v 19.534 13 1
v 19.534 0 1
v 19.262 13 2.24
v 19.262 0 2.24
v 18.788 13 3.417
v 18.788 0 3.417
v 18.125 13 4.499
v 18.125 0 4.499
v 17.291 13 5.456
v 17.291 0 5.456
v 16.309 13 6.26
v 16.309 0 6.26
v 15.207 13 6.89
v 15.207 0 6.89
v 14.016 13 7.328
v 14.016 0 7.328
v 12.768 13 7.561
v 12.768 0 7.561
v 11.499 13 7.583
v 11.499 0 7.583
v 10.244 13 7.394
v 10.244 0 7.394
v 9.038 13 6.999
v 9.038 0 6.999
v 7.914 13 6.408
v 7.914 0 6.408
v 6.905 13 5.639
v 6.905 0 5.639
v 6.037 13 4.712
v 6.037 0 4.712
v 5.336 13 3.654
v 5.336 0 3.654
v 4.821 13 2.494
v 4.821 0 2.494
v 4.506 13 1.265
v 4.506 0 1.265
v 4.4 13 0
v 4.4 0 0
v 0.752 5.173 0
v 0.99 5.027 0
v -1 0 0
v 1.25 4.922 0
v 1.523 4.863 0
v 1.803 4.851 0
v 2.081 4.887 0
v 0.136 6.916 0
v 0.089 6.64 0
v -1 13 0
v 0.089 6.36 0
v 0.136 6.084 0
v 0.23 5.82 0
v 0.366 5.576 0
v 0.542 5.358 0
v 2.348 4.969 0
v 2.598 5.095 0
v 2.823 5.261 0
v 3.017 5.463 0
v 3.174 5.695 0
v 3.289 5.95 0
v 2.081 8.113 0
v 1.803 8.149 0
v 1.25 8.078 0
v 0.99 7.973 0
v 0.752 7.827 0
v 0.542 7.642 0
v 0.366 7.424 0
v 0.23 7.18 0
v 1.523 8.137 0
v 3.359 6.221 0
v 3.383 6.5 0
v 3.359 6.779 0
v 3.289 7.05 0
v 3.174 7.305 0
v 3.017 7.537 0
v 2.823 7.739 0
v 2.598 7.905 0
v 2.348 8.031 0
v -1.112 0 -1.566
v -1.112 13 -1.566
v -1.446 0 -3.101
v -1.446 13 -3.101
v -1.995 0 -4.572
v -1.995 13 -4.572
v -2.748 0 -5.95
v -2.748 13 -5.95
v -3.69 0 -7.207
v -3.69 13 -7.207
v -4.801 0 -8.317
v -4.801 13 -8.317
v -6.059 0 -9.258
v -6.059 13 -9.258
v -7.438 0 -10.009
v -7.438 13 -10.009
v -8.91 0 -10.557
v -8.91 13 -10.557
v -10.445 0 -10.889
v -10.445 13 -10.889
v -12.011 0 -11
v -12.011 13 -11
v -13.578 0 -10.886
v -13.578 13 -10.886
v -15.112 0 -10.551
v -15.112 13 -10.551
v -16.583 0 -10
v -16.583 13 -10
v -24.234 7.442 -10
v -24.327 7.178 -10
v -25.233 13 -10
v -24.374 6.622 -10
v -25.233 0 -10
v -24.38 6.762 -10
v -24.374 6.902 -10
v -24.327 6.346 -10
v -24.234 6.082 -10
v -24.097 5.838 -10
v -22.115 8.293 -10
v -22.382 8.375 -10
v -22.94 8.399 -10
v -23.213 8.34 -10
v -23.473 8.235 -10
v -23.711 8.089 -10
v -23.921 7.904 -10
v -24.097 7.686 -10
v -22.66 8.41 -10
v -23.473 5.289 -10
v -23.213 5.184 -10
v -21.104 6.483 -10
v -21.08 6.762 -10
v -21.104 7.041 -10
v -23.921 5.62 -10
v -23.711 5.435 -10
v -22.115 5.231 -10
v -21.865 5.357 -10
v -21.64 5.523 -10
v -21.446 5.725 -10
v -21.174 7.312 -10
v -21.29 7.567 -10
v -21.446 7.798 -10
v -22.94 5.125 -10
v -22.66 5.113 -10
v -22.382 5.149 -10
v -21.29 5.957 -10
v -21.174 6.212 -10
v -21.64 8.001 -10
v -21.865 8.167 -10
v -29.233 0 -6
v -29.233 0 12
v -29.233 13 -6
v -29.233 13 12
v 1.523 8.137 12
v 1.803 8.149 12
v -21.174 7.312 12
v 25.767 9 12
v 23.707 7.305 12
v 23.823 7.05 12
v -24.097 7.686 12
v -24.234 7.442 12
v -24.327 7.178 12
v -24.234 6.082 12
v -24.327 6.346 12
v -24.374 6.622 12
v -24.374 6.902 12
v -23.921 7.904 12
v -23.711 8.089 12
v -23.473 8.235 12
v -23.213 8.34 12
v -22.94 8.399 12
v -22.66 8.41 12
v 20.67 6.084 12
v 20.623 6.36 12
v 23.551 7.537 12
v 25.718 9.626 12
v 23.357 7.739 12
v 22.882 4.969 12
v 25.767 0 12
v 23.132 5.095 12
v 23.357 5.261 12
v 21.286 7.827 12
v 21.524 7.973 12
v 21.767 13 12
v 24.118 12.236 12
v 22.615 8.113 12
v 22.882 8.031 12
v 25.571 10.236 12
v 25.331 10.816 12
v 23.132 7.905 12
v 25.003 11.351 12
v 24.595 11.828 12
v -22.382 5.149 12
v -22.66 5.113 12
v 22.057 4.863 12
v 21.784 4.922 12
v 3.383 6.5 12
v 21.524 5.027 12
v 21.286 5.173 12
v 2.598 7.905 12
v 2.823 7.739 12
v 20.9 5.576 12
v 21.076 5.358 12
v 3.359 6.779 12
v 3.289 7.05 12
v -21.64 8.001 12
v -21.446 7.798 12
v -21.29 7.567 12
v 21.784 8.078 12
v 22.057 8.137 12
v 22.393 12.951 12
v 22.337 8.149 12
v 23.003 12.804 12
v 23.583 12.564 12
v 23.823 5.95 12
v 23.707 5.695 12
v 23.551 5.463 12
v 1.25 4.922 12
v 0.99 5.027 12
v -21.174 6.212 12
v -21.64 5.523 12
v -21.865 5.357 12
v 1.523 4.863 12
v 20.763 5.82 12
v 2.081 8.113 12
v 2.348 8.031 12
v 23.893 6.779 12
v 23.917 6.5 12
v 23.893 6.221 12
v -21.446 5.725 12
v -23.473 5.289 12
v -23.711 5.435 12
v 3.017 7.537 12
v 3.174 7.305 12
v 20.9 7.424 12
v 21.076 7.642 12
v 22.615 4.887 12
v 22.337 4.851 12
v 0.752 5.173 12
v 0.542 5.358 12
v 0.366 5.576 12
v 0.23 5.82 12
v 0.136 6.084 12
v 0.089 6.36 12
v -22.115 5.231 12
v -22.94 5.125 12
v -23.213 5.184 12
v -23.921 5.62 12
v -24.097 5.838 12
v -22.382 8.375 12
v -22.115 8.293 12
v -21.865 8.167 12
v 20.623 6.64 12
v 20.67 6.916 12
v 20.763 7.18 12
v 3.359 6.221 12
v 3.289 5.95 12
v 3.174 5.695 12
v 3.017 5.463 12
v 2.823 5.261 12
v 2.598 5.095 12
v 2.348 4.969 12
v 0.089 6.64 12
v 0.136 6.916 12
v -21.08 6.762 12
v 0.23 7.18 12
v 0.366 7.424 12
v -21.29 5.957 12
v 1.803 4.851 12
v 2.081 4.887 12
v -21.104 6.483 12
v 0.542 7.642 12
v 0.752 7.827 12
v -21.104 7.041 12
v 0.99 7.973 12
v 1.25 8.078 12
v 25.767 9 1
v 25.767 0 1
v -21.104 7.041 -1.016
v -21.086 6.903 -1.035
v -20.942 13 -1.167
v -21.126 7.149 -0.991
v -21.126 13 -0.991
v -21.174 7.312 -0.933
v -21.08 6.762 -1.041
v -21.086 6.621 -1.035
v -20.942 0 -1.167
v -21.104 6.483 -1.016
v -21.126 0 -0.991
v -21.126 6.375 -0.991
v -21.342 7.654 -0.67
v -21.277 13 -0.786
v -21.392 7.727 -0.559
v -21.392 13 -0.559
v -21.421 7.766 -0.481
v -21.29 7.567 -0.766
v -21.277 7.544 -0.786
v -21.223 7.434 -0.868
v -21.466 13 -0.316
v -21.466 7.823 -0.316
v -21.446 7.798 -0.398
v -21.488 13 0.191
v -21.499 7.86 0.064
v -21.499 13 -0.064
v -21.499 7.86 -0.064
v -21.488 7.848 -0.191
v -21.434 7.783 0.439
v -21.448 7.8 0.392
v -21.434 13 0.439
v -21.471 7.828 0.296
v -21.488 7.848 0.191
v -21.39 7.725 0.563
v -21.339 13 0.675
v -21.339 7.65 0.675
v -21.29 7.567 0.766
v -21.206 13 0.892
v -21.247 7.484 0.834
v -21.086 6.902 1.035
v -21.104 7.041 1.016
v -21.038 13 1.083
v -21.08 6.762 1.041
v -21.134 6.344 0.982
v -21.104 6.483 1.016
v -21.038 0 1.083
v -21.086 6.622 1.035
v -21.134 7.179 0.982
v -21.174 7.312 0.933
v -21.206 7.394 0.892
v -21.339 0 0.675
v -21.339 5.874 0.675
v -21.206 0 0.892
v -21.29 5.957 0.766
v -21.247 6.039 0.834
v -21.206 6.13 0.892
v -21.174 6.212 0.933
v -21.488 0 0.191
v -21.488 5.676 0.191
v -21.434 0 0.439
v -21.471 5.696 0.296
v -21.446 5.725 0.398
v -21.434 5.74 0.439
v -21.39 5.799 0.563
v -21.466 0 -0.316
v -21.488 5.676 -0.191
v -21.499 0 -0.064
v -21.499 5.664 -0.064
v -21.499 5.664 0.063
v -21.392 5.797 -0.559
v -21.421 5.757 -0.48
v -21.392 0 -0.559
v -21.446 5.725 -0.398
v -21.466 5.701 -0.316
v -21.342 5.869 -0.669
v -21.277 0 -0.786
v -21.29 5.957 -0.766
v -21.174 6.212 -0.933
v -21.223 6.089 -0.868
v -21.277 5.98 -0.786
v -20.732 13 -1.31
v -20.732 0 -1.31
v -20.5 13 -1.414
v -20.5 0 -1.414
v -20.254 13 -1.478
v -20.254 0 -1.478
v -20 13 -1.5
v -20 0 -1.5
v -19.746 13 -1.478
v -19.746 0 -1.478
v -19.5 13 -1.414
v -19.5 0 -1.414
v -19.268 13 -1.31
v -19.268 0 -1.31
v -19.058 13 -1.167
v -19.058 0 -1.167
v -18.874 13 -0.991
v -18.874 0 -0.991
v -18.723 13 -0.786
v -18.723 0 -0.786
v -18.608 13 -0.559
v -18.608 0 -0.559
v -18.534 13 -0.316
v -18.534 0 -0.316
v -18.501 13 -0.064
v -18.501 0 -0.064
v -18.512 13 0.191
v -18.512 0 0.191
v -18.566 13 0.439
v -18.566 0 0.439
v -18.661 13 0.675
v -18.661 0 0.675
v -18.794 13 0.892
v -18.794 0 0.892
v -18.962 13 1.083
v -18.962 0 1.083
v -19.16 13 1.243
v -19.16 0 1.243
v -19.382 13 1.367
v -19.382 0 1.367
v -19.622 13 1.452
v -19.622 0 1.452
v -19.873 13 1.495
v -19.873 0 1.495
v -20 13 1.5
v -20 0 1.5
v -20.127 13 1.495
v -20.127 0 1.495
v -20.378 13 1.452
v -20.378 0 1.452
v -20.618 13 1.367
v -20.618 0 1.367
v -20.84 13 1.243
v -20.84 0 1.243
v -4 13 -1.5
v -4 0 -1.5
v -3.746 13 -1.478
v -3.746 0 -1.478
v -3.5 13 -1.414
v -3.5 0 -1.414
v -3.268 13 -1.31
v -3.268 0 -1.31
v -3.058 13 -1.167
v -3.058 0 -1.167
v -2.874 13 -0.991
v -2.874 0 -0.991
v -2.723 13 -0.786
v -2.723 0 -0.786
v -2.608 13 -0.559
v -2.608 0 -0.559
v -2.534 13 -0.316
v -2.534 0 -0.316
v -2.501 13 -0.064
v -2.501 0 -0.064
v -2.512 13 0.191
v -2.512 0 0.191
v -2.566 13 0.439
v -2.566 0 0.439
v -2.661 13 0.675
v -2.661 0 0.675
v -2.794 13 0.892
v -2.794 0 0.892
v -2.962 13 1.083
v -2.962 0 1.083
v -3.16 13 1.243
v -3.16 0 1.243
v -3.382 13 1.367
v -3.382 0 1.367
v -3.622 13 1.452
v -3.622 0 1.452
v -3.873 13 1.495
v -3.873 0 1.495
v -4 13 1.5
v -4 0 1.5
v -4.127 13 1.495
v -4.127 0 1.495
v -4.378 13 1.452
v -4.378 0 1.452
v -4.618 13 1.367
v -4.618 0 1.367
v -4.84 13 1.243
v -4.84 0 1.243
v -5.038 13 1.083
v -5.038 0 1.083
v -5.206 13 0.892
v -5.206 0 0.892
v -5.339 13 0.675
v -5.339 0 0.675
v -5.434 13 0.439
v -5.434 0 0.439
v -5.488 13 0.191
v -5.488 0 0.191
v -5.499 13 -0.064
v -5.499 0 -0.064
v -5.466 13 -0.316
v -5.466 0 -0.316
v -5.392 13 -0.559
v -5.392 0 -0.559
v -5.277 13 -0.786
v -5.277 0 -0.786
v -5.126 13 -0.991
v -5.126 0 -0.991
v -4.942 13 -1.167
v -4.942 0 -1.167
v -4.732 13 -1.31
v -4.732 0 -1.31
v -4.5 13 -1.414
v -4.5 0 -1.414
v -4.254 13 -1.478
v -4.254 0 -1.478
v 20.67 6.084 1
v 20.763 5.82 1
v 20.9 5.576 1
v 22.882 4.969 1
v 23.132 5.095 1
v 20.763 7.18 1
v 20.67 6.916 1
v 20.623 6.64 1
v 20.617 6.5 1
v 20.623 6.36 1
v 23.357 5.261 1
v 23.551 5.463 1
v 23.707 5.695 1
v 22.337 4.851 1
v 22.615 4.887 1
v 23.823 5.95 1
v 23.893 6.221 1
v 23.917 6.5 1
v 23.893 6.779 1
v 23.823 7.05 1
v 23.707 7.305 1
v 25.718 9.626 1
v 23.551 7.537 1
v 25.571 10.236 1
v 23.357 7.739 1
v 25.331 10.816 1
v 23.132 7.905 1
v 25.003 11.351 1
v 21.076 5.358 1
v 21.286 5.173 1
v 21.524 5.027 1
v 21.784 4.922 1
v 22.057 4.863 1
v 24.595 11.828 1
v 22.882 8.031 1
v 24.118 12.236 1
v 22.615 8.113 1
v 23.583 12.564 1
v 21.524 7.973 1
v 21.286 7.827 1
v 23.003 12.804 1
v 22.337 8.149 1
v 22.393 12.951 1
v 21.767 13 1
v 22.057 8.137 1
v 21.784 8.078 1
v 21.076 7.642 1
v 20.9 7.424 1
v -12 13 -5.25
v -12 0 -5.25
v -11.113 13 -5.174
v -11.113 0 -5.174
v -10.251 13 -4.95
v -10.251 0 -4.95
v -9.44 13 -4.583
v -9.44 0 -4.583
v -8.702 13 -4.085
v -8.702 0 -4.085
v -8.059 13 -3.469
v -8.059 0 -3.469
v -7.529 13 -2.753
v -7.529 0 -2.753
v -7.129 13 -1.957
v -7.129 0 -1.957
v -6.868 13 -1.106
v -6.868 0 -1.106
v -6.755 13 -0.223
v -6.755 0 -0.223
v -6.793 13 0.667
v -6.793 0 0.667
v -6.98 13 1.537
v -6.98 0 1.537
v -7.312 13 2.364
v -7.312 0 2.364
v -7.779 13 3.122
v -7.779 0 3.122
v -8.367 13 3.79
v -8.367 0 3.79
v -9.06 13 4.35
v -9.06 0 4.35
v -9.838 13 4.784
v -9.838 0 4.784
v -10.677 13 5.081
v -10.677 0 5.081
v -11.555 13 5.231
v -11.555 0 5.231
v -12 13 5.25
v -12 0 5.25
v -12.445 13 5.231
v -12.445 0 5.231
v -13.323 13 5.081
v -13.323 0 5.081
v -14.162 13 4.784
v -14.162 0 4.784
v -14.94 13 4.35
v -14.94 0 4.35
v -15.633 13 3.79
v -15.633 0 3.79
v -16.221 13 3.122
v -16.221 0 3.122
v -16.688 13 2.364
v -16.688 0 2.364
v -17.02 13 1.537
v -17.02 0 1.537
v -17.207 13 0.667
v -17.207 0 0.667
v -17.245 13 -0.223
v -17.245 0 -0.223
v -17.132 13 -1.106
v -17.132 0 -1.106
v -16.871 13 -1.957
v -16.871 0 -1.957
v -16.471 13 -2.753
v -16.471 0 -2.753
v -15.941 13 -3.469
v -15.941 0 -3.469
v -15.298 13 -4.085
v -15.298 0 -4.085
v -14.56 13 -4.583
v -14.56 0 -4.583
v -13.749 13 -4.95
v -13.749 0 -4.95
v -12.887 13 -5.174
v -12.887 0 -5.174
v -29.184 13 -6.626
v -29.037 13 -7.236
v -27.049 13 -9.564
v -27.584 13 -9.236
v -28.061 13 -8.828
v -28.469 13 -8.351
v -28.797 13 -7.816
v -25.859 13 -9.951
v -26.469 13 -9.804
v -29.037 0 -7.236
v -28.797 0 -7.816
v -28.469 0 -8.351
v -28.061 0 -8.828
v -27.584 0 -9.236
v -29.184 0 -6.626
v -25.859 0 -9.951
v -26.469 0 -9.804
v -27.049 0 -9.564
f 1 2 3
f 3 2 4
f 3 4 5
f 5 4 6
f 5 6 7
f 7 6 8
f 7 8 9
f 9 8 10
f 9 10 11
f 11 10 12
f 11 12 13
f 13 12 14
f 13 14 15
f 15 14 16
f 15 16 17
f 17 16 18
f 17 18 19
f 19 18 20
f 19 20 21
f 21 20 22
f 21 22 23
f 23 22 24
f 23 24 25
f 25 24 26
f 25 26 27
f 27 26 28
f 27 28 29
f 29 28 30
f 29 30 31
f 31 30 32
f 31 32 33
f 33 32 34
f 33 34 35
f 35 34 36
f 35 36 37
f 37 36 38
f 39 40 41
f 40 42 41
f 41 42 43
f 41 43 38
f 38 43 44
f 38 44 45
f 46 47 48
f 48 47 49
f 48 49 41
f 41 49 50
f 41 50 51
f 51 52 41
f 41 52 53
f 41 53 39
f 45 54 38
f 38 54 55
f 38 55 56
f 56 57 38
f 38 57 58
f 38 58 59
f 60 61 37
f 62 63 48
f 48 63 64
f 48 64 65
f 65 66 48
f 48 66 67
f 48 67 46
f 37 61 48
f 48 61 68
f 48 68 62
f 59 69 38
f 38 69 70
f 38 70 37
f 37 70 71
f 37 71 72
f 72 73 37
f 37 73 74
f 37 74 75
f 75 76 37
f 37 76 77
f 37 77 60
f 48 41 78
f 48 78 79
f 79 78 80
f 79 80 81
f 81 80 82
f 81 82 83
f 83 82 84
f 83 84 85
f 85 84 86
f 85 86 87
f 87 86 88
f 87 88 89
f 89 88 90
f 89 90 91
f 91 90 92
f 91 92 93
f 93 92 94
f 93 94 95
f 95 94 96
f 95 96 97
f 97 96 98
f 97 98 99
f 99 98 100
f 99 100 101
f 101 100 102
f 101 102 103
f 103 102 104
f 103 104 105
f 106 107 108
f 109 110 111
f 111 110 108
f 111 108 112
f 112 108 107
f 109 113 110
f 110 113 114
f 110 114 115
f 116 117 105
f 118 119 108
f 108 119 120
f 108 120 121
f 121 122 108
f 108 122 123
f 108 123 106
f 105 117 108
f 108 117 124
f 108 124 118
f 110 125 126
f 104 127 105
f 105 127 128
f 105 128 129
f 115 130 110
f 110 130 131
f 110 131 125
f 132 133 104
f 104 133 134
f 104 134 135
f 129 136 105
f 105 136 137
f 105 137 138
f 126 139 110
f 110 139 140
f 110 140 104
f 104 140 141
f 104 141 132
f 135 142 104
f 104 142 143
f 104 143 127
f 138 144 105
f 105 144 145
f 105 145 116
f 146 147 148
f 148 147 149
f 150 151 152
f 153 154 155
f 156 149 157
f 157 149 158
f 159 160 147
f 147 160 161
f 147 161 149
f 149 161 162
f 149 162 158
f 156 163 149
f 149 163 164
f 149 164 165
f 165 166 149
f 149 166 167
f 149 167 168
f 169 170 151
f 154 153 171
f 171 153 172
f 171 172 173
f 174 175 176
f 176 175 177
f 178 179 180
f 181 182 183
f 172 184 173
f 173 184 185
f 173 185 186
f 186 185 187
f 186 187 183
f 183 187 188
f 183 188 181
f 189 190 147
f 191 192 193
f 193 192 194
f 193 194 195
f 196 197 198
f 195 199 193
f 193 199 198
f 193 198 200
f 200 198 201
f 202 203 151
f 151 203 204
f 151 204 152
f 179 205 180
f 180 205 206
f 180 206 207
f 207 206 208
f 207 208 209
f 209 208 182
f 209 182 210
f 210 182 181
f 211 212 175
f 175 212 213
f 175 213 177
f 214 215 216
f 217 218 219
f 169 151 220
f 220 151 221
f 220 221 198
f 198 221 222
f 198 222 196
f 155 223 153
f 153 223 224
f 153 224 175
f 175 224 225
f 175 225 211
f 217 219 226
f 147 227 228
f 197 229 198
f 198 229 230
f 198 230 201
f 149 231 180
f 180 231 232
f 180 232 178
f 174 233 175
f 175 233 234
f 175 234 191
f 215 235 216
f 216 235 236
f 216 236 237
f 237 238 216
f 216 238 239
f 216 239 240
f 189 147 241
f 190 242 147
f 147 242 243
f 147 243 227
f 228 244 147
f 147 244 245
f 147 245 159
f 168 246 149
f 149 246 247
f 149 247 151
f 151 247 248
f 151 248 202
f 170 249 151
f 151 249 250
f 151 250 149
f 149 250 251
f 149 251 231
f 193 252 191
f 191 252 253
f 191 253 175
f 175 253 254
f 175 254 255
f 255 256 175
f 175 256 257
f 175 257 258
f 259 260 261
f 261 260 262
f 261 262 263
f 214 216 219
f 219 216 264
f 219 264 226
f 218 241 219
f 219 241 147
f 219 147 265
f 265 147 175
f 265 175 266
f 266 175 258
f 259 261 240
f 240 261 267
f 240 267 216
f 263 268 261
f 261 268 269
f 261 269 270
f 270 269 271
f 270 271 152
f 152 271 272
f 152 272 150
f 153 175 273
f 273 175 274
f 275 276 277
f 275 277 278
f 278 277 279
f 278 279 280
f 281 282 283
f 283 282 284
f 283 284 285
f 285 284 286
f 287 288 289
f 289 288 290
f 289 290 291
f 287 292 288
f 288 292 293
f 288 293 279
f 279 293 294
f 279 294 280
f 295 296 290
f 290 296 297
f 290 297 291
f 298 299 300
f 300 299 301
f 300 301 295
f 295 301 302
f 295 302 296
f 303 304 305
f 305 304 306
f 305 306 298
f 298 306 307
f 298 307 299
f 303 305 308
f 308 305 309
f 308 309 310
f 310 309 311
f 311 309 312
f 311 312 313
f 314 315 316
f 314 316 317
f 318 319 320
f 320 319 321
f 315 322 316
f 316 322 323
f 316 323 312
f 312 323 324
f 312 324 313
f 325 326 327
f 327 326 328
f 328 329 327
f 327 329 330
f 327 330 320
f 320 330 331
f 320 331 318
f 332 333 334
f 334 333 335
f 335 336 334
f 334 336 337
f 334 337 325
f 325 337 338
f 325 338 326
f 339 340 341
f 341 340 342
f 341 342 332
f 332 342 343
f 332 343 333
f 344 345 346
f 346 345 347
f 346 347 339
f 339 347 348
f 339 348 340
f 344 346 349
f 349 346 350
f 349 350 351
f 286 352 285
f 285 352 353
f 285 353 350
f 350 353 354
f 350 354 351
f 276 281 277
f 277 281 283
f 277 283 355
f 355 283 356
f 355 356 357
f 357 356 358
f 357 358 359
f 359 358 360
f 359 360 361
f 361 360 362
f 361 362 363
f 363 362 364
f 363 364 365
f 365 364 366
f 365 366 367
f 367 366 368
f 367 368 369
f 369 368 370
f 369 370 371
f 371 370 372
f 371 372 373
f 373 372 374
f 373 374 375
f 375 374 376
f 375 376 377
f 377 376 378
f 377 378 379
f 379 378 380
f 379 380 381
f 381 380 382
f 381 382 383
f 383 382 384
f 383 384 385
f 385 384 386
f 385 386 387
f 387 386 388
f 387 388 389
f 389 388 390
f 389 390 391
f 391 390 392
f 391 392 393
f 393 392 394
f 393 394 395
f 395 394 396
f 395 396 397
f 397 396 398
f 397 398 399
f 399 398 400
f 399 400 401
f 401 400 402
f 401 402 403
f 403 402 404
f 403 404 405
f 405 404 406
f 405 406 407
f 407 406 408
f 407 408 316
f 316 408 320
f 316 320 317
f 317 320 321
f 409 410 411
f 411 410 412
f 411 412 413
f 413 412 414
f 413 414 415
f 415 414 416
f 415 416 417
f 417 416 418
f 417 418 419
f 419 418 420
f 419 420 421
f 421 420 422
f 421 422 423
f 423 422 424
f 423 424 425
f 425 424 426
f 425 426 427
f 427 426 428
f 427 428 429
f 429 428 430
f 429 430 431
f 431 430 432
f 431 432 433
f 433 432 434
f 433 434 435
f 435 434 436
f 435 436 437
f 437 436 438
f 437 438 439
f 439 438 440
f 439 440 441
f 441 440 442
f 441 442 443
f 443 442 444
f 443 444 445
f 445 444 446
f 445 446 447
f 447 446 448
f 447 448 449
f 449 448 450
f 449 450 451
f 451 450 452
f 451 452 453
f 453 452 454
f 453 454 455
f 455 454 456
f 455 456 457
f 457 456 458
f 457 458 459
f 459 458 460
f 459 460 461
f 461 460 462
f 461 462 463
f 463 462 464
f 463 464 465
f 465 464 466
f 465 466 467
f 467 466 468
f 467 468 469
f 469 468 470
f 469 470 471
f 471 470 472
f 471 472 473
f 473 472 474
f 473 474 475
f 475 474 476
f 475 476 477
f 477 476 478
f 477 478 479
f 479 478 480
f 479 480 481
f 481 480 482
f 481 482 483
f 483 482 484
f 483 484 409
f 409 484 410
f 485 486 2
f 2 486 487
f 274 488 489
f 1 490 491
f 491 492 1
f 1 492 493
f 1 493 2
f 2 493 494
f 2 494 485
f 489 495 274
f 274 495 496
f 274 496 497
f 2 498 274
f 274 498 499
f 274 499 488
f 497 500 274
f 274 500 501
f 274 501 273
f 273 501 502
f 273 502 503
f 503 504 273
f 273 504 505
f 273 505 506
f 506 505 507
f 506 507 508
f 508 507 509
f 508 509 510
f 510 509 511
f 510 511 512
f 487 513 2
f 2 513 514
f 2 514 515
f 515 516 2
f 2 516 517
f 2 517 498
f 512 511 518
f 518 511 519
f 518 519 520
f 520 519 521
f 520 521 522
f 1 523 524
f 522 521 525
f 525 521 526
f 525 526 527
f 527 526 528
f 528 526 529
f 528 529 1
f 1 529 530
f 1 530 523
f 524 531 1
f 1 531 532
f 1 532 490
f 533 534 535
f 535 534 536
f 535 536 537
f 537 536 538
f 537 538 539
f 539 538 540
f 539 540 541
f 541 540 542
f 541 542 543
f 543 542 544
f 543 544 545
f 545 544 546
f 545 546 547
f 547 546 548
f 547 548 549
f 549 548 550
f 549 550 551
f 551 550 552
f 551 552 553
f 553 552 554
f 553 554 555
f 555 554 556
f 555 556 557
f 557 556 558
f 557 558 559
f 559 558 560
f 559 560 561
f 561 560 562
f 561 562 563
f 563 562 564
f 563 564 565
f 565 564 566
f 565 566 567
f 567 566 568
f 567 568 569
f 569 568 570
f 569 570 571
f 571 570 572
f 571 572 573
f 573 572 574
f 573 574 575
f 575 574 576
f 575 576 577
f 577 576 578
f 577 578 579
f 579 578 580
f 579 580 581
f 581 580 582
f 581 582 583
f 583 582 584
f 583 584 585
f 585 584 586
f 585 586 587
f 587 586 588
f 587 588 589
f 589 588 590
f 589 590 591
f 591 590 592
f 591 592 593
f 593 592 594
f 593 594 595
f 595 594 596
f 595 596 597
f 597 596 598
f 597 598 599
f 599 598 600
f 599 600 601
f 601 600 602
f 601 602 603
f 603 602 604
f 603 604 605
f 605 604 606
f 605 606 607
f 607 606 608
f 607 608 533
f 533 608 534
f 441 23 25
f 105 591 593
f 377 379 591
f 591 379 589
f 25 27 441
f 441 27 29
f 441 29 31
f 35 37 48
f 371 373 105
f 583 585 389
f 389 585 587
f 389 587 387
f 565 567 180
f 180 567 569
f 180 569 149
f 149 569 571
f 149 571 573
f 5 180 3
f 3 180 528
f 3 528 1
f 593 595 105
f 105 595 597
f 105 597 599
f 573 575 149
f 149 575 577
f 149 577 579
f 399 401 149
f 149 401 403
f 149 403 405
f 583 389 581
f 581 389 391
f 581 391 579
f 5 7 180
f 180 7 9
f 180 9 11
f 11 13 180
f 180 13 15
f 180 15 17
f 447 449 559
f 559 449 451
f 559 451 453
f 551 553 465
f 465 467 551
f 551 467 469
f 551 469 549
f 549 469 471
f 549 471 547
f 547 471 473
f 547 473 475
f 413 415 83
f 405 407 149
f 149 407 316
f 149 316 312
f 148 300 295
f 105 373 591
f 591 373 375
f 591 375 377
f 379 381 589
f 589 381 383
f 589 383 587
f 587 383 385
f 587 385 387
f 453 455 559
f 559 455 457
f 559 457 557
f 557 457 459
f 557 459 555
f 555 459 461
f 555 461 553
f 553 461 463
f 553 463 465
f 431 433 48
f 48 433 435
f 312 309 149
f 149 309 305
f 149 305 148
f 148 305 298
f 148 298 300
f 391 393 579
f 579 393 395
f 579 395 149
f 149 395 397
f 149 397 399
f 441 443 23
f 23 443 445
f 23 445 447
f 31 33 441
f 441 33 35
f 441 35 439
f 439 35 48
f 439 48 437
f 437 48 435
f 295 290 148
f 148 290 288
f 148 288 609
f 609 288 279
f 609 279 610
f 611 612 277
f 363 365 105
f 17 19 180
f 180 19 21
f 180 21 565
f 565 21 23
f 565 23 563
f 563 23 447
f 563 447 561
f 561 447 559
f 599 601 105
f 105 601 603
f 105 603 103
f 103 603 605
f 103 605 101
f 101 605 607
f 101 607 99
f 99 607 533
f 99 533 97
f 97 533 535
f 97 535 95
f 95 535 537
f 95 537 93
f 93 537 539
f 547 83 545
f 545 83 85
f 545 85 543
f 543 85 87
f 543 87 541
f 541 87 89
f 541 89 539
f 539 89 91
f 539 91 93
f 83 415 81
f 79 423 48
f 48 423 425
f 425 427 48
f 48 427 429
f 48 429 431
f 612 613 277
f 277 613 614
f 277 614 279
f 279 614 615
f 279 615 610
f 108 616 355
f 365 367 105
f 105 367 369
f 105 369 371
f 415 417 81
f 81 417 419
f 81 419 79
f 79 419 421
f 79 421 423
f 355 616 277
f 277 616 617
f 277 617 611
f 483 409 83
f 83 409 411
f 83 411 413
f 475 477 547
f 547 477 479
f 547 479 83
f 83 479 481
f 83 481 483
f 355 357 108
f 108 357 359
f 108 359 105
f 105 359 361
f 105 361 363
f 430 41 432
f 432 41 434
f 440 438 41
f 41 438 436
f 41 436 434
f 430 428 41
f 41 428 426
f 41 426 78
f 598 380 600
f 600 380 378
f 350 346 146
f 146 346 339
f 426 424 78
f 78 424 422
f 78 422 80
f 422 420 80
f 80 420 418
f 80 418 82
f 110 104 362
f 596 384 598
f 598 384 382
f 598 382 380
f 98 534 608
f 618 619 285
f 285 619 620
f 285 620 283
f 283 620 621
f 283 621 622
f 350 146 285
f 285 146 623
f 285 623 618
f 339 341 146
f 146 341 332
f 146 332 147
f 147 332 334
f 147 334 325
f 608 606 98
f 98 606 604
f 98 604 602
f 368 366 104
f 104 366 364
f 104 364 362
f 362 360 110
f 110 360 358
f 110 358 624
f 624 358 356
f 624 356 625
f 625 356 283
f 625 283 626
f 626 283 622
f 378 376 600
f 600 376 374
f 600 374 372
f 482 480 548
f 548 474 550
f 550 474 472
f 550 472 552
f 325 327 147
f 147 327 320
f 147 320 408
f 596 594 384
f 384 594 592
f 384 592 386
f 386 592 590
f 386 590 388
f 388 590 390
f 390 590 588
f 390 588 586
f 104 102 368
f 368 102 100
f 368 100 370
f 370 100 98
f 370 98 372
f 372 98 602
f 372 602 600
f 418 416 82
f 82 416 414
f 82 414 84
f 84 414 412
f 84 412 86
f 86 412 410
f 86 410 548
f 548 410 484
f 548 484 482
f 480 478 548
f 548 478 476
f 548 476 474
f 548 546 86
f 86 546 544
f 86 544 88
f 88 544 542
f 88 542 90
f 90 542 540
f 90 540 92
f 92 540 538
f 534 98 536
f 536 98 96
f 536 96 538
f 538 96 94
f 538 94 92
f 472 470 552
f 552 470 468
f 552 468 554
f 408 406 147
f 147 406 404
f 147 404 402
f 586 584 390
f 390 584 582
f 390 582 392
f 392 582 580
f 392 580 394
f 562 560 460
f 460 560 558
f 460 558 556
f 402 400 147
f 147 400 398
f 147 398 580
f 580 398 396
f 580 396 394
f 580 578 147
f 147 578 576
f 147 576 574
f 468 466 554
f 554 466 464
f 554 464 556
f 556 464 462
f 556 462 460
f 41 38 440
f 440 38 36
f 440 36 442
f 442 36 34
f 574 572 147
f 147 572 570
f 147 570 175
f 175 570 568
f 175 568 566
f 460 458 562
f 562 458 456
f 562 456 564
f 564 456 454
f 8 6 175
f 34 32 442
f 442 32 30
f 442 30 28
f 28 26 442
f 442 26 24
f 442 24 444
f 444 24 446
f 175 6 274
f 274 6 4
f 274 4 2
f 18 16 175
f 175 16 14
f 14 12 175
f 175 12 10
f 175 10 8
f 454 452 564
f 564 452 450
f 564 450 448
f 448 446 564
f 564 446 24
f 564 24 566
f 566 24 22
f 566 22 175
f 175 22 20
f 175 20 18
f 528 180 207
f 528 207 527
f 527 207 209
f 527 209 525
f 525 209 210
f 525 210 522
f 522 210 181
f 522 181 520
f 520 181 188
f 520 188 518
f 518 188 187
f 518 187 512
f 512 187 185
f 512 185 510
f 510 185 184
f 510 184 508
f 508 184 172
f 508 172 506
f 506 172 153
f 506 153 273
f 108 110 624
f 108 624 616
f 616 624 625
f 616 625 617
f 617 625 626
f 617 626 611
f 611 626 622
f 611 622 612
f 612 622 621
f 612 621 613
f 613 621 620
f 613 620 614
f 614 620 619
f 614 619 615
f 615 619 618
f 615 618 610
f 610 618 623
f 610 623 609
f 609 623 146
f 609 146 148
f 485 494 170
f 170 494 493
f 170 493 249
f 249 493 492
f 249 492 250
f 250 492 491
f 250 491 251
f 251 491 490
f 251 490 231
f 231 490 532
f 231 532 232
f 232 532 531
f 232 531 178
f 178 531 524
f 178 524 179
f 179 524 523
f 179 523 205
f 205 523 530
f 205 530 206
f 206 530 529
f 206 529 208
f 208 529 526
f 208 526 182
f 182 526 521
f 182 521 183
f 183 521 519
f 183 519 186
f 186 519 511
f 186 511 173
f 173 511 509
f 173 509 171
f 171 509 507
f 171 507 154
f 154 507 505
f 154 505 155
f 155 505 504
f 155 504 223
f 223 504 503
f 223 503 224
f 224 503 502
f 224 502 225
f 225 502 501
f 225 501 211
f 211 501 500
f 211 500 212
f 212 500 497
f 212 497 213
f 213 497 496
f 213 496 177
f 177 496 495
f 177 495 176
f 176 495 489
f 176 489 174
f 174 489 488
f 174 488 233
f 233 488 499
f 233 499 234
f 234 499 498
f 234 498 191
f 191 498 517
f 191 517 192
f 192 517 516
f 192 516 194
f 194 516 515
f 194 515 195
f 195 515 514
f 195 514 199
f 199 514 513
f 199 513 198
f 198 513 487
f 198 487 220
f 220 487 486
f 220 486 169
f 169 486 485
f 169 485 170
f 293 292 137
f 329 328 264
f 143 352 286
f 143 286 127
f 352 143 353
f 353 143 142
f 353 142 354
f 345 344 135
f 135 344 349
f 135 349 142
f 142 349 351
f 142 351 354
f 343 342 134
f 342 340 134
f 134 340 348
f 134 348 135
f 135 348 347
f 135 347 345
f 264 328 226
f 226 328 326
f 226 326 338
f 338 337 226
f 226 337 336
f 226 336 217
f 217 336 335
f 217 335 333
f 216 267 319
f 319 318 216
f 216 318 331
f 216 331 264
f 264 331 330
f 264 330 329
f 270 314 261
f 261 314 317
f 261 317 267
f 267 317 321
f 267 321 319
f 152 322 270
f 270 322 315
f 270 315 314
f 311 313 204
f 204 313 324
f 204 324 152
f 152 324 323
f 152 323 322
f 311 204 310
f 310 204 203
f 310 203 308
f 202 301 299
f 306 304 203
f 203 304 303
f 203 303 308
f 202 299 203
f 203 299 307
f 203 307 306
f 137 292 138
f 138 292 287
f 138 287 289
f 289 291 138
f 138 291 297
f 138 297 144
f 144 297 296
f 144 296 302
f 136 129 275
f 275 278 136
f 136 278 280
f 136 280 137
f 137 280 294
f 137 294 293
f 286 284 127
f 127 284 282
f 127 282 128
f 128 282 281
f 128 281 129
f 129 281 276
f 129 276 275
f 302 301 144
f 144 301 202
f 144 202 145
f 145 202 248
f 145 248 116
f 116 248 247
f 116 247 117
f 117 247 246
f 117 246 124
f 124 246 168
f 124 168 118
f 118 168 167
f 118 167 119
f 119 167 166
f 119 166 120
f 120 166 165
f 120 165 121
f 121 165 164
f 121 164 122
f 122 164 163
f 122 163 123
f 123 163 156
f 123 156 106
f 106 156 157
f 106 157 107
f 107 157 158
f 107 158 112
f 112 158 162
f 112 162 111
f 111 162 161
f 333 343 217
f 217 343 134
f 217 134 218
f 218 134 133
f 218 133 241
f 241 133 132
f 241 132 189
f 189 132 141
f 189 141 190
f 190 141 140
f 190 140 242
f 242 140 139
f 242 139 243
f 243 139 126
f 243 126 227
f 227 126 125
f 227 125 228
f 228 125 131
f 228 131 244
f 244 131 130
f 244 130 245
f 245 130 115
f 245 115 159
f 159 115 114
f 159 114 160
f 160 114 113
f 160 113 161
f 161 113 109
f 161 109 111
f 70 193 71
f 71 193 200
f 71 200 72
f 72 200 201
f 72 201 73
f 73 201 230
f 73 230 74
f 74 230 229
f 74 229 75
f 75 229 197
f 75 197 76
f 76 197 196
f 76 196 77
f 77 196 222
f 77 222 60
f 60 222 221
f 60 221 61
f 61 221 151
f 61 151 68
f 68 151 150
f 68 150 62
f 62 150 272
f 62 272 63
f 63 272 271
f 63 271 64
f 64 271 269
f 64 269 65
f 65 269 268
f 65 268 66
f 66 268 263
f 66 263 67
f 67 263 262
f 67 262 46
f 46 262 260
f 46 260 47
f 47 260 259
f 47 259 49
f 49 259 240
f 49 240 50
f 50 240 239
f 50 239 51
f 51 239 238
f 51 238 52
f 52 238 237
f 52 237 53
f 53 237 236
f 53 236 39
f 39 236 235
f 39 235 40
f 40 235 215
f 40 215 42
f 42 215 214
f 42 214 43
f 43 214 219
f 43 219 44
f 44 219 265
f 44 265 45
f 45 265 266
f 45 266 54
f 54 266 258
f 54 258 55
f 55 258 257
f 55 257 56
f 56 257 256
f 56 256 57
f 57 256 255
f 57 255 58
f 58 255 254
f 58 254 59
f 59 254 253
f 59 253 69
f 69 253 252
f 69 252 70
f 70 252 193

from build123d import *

# Parameters (mm, degrees)
SKETCH1_R           = 1.5
SKETCH1_R_2         = 5.25
BOSS_EXTRUDE4_DEPTH = 13
FILLET2_R           = 4
FILLET3_R           = 4
SKETCH2_R           = 1.65
CUT_EXTRUDE1_DEPTH  = 40.402671632


with BuildPart() as part:
    # Sketch1 → Boss-Extrude4 (new body)
    with BuildSketch(Plane(origin=(0, 0, 0), x_dir=(1, 0, 0), z_dir=(0, 1, 0))):
        with BuildLine():
            Line((-29.23303836, -12), (25.76696164, -12))
            Line((25.76696164, -12), (25.76696164, -1))
            Line((25.76696164, -1), (19.533923281, -1))
            ThreePointArc((19.533923281, -1), (11.498909656, -7.583462828), (4.4, 0))
            Line((4.4, 0), (-1, 0))
            ThreePointArc((-1, 0), (-6.058970318, 9.257654472), (-16.582575695, 10))
            Line((-16.582575695, 10), (-29.23303836, 10))
            Line((-29.23303836, 10), (-29.23303836, -12))
        make_face()
        with Locations((-4, 0)):
            Circle(SKETCH1_R, mode=Mode.SUBTRACT)
        with Locations((-20, 0)):
            Circle(SKETCH1_R, mode=Mode.SUBTRACT)
        with Locations((-12, 0)):
            Circle(SKETCH1_R_2, mode=Mode.SUBTRACT)
    extrude(amount=BOSS_EXTRUDE4_DEPTH)

    # Fillet2
    fillet2_edges = [part.edges().sort_by_distance(p)[0] for p in [
        (25.76696164, 13, 6.5),
    ]]
    fillet(fillet2_edges, radius=FILLET2_R)

    # Fillet3
    fillet3_edges = [part.edges().sort_by_distance(p)[0] for p in [
        (-29.23303836, 6.5, -10),
    ]]
    fillet(fillet3_edges, radius=FILLET3_R)

    # Sketch2 → Cut-Extrude1 (cut, through all)
    with BuildSketch(Plane.XY.offset(12)):
        with Locations((22.26696164, 6.5)):
            Circle(SKETCH2_R)
        with Locations((1.73303836, 6.5)):
            Circle(SKETCH2_R)
        with Locations((-22.73, 6.761910465)):
            Circle(SKETCH2_R)
    extrude(amount=-CUT_EXTRUDE1_DEPTH, mode=Mode.SUBTRACT)


solid = part.part
